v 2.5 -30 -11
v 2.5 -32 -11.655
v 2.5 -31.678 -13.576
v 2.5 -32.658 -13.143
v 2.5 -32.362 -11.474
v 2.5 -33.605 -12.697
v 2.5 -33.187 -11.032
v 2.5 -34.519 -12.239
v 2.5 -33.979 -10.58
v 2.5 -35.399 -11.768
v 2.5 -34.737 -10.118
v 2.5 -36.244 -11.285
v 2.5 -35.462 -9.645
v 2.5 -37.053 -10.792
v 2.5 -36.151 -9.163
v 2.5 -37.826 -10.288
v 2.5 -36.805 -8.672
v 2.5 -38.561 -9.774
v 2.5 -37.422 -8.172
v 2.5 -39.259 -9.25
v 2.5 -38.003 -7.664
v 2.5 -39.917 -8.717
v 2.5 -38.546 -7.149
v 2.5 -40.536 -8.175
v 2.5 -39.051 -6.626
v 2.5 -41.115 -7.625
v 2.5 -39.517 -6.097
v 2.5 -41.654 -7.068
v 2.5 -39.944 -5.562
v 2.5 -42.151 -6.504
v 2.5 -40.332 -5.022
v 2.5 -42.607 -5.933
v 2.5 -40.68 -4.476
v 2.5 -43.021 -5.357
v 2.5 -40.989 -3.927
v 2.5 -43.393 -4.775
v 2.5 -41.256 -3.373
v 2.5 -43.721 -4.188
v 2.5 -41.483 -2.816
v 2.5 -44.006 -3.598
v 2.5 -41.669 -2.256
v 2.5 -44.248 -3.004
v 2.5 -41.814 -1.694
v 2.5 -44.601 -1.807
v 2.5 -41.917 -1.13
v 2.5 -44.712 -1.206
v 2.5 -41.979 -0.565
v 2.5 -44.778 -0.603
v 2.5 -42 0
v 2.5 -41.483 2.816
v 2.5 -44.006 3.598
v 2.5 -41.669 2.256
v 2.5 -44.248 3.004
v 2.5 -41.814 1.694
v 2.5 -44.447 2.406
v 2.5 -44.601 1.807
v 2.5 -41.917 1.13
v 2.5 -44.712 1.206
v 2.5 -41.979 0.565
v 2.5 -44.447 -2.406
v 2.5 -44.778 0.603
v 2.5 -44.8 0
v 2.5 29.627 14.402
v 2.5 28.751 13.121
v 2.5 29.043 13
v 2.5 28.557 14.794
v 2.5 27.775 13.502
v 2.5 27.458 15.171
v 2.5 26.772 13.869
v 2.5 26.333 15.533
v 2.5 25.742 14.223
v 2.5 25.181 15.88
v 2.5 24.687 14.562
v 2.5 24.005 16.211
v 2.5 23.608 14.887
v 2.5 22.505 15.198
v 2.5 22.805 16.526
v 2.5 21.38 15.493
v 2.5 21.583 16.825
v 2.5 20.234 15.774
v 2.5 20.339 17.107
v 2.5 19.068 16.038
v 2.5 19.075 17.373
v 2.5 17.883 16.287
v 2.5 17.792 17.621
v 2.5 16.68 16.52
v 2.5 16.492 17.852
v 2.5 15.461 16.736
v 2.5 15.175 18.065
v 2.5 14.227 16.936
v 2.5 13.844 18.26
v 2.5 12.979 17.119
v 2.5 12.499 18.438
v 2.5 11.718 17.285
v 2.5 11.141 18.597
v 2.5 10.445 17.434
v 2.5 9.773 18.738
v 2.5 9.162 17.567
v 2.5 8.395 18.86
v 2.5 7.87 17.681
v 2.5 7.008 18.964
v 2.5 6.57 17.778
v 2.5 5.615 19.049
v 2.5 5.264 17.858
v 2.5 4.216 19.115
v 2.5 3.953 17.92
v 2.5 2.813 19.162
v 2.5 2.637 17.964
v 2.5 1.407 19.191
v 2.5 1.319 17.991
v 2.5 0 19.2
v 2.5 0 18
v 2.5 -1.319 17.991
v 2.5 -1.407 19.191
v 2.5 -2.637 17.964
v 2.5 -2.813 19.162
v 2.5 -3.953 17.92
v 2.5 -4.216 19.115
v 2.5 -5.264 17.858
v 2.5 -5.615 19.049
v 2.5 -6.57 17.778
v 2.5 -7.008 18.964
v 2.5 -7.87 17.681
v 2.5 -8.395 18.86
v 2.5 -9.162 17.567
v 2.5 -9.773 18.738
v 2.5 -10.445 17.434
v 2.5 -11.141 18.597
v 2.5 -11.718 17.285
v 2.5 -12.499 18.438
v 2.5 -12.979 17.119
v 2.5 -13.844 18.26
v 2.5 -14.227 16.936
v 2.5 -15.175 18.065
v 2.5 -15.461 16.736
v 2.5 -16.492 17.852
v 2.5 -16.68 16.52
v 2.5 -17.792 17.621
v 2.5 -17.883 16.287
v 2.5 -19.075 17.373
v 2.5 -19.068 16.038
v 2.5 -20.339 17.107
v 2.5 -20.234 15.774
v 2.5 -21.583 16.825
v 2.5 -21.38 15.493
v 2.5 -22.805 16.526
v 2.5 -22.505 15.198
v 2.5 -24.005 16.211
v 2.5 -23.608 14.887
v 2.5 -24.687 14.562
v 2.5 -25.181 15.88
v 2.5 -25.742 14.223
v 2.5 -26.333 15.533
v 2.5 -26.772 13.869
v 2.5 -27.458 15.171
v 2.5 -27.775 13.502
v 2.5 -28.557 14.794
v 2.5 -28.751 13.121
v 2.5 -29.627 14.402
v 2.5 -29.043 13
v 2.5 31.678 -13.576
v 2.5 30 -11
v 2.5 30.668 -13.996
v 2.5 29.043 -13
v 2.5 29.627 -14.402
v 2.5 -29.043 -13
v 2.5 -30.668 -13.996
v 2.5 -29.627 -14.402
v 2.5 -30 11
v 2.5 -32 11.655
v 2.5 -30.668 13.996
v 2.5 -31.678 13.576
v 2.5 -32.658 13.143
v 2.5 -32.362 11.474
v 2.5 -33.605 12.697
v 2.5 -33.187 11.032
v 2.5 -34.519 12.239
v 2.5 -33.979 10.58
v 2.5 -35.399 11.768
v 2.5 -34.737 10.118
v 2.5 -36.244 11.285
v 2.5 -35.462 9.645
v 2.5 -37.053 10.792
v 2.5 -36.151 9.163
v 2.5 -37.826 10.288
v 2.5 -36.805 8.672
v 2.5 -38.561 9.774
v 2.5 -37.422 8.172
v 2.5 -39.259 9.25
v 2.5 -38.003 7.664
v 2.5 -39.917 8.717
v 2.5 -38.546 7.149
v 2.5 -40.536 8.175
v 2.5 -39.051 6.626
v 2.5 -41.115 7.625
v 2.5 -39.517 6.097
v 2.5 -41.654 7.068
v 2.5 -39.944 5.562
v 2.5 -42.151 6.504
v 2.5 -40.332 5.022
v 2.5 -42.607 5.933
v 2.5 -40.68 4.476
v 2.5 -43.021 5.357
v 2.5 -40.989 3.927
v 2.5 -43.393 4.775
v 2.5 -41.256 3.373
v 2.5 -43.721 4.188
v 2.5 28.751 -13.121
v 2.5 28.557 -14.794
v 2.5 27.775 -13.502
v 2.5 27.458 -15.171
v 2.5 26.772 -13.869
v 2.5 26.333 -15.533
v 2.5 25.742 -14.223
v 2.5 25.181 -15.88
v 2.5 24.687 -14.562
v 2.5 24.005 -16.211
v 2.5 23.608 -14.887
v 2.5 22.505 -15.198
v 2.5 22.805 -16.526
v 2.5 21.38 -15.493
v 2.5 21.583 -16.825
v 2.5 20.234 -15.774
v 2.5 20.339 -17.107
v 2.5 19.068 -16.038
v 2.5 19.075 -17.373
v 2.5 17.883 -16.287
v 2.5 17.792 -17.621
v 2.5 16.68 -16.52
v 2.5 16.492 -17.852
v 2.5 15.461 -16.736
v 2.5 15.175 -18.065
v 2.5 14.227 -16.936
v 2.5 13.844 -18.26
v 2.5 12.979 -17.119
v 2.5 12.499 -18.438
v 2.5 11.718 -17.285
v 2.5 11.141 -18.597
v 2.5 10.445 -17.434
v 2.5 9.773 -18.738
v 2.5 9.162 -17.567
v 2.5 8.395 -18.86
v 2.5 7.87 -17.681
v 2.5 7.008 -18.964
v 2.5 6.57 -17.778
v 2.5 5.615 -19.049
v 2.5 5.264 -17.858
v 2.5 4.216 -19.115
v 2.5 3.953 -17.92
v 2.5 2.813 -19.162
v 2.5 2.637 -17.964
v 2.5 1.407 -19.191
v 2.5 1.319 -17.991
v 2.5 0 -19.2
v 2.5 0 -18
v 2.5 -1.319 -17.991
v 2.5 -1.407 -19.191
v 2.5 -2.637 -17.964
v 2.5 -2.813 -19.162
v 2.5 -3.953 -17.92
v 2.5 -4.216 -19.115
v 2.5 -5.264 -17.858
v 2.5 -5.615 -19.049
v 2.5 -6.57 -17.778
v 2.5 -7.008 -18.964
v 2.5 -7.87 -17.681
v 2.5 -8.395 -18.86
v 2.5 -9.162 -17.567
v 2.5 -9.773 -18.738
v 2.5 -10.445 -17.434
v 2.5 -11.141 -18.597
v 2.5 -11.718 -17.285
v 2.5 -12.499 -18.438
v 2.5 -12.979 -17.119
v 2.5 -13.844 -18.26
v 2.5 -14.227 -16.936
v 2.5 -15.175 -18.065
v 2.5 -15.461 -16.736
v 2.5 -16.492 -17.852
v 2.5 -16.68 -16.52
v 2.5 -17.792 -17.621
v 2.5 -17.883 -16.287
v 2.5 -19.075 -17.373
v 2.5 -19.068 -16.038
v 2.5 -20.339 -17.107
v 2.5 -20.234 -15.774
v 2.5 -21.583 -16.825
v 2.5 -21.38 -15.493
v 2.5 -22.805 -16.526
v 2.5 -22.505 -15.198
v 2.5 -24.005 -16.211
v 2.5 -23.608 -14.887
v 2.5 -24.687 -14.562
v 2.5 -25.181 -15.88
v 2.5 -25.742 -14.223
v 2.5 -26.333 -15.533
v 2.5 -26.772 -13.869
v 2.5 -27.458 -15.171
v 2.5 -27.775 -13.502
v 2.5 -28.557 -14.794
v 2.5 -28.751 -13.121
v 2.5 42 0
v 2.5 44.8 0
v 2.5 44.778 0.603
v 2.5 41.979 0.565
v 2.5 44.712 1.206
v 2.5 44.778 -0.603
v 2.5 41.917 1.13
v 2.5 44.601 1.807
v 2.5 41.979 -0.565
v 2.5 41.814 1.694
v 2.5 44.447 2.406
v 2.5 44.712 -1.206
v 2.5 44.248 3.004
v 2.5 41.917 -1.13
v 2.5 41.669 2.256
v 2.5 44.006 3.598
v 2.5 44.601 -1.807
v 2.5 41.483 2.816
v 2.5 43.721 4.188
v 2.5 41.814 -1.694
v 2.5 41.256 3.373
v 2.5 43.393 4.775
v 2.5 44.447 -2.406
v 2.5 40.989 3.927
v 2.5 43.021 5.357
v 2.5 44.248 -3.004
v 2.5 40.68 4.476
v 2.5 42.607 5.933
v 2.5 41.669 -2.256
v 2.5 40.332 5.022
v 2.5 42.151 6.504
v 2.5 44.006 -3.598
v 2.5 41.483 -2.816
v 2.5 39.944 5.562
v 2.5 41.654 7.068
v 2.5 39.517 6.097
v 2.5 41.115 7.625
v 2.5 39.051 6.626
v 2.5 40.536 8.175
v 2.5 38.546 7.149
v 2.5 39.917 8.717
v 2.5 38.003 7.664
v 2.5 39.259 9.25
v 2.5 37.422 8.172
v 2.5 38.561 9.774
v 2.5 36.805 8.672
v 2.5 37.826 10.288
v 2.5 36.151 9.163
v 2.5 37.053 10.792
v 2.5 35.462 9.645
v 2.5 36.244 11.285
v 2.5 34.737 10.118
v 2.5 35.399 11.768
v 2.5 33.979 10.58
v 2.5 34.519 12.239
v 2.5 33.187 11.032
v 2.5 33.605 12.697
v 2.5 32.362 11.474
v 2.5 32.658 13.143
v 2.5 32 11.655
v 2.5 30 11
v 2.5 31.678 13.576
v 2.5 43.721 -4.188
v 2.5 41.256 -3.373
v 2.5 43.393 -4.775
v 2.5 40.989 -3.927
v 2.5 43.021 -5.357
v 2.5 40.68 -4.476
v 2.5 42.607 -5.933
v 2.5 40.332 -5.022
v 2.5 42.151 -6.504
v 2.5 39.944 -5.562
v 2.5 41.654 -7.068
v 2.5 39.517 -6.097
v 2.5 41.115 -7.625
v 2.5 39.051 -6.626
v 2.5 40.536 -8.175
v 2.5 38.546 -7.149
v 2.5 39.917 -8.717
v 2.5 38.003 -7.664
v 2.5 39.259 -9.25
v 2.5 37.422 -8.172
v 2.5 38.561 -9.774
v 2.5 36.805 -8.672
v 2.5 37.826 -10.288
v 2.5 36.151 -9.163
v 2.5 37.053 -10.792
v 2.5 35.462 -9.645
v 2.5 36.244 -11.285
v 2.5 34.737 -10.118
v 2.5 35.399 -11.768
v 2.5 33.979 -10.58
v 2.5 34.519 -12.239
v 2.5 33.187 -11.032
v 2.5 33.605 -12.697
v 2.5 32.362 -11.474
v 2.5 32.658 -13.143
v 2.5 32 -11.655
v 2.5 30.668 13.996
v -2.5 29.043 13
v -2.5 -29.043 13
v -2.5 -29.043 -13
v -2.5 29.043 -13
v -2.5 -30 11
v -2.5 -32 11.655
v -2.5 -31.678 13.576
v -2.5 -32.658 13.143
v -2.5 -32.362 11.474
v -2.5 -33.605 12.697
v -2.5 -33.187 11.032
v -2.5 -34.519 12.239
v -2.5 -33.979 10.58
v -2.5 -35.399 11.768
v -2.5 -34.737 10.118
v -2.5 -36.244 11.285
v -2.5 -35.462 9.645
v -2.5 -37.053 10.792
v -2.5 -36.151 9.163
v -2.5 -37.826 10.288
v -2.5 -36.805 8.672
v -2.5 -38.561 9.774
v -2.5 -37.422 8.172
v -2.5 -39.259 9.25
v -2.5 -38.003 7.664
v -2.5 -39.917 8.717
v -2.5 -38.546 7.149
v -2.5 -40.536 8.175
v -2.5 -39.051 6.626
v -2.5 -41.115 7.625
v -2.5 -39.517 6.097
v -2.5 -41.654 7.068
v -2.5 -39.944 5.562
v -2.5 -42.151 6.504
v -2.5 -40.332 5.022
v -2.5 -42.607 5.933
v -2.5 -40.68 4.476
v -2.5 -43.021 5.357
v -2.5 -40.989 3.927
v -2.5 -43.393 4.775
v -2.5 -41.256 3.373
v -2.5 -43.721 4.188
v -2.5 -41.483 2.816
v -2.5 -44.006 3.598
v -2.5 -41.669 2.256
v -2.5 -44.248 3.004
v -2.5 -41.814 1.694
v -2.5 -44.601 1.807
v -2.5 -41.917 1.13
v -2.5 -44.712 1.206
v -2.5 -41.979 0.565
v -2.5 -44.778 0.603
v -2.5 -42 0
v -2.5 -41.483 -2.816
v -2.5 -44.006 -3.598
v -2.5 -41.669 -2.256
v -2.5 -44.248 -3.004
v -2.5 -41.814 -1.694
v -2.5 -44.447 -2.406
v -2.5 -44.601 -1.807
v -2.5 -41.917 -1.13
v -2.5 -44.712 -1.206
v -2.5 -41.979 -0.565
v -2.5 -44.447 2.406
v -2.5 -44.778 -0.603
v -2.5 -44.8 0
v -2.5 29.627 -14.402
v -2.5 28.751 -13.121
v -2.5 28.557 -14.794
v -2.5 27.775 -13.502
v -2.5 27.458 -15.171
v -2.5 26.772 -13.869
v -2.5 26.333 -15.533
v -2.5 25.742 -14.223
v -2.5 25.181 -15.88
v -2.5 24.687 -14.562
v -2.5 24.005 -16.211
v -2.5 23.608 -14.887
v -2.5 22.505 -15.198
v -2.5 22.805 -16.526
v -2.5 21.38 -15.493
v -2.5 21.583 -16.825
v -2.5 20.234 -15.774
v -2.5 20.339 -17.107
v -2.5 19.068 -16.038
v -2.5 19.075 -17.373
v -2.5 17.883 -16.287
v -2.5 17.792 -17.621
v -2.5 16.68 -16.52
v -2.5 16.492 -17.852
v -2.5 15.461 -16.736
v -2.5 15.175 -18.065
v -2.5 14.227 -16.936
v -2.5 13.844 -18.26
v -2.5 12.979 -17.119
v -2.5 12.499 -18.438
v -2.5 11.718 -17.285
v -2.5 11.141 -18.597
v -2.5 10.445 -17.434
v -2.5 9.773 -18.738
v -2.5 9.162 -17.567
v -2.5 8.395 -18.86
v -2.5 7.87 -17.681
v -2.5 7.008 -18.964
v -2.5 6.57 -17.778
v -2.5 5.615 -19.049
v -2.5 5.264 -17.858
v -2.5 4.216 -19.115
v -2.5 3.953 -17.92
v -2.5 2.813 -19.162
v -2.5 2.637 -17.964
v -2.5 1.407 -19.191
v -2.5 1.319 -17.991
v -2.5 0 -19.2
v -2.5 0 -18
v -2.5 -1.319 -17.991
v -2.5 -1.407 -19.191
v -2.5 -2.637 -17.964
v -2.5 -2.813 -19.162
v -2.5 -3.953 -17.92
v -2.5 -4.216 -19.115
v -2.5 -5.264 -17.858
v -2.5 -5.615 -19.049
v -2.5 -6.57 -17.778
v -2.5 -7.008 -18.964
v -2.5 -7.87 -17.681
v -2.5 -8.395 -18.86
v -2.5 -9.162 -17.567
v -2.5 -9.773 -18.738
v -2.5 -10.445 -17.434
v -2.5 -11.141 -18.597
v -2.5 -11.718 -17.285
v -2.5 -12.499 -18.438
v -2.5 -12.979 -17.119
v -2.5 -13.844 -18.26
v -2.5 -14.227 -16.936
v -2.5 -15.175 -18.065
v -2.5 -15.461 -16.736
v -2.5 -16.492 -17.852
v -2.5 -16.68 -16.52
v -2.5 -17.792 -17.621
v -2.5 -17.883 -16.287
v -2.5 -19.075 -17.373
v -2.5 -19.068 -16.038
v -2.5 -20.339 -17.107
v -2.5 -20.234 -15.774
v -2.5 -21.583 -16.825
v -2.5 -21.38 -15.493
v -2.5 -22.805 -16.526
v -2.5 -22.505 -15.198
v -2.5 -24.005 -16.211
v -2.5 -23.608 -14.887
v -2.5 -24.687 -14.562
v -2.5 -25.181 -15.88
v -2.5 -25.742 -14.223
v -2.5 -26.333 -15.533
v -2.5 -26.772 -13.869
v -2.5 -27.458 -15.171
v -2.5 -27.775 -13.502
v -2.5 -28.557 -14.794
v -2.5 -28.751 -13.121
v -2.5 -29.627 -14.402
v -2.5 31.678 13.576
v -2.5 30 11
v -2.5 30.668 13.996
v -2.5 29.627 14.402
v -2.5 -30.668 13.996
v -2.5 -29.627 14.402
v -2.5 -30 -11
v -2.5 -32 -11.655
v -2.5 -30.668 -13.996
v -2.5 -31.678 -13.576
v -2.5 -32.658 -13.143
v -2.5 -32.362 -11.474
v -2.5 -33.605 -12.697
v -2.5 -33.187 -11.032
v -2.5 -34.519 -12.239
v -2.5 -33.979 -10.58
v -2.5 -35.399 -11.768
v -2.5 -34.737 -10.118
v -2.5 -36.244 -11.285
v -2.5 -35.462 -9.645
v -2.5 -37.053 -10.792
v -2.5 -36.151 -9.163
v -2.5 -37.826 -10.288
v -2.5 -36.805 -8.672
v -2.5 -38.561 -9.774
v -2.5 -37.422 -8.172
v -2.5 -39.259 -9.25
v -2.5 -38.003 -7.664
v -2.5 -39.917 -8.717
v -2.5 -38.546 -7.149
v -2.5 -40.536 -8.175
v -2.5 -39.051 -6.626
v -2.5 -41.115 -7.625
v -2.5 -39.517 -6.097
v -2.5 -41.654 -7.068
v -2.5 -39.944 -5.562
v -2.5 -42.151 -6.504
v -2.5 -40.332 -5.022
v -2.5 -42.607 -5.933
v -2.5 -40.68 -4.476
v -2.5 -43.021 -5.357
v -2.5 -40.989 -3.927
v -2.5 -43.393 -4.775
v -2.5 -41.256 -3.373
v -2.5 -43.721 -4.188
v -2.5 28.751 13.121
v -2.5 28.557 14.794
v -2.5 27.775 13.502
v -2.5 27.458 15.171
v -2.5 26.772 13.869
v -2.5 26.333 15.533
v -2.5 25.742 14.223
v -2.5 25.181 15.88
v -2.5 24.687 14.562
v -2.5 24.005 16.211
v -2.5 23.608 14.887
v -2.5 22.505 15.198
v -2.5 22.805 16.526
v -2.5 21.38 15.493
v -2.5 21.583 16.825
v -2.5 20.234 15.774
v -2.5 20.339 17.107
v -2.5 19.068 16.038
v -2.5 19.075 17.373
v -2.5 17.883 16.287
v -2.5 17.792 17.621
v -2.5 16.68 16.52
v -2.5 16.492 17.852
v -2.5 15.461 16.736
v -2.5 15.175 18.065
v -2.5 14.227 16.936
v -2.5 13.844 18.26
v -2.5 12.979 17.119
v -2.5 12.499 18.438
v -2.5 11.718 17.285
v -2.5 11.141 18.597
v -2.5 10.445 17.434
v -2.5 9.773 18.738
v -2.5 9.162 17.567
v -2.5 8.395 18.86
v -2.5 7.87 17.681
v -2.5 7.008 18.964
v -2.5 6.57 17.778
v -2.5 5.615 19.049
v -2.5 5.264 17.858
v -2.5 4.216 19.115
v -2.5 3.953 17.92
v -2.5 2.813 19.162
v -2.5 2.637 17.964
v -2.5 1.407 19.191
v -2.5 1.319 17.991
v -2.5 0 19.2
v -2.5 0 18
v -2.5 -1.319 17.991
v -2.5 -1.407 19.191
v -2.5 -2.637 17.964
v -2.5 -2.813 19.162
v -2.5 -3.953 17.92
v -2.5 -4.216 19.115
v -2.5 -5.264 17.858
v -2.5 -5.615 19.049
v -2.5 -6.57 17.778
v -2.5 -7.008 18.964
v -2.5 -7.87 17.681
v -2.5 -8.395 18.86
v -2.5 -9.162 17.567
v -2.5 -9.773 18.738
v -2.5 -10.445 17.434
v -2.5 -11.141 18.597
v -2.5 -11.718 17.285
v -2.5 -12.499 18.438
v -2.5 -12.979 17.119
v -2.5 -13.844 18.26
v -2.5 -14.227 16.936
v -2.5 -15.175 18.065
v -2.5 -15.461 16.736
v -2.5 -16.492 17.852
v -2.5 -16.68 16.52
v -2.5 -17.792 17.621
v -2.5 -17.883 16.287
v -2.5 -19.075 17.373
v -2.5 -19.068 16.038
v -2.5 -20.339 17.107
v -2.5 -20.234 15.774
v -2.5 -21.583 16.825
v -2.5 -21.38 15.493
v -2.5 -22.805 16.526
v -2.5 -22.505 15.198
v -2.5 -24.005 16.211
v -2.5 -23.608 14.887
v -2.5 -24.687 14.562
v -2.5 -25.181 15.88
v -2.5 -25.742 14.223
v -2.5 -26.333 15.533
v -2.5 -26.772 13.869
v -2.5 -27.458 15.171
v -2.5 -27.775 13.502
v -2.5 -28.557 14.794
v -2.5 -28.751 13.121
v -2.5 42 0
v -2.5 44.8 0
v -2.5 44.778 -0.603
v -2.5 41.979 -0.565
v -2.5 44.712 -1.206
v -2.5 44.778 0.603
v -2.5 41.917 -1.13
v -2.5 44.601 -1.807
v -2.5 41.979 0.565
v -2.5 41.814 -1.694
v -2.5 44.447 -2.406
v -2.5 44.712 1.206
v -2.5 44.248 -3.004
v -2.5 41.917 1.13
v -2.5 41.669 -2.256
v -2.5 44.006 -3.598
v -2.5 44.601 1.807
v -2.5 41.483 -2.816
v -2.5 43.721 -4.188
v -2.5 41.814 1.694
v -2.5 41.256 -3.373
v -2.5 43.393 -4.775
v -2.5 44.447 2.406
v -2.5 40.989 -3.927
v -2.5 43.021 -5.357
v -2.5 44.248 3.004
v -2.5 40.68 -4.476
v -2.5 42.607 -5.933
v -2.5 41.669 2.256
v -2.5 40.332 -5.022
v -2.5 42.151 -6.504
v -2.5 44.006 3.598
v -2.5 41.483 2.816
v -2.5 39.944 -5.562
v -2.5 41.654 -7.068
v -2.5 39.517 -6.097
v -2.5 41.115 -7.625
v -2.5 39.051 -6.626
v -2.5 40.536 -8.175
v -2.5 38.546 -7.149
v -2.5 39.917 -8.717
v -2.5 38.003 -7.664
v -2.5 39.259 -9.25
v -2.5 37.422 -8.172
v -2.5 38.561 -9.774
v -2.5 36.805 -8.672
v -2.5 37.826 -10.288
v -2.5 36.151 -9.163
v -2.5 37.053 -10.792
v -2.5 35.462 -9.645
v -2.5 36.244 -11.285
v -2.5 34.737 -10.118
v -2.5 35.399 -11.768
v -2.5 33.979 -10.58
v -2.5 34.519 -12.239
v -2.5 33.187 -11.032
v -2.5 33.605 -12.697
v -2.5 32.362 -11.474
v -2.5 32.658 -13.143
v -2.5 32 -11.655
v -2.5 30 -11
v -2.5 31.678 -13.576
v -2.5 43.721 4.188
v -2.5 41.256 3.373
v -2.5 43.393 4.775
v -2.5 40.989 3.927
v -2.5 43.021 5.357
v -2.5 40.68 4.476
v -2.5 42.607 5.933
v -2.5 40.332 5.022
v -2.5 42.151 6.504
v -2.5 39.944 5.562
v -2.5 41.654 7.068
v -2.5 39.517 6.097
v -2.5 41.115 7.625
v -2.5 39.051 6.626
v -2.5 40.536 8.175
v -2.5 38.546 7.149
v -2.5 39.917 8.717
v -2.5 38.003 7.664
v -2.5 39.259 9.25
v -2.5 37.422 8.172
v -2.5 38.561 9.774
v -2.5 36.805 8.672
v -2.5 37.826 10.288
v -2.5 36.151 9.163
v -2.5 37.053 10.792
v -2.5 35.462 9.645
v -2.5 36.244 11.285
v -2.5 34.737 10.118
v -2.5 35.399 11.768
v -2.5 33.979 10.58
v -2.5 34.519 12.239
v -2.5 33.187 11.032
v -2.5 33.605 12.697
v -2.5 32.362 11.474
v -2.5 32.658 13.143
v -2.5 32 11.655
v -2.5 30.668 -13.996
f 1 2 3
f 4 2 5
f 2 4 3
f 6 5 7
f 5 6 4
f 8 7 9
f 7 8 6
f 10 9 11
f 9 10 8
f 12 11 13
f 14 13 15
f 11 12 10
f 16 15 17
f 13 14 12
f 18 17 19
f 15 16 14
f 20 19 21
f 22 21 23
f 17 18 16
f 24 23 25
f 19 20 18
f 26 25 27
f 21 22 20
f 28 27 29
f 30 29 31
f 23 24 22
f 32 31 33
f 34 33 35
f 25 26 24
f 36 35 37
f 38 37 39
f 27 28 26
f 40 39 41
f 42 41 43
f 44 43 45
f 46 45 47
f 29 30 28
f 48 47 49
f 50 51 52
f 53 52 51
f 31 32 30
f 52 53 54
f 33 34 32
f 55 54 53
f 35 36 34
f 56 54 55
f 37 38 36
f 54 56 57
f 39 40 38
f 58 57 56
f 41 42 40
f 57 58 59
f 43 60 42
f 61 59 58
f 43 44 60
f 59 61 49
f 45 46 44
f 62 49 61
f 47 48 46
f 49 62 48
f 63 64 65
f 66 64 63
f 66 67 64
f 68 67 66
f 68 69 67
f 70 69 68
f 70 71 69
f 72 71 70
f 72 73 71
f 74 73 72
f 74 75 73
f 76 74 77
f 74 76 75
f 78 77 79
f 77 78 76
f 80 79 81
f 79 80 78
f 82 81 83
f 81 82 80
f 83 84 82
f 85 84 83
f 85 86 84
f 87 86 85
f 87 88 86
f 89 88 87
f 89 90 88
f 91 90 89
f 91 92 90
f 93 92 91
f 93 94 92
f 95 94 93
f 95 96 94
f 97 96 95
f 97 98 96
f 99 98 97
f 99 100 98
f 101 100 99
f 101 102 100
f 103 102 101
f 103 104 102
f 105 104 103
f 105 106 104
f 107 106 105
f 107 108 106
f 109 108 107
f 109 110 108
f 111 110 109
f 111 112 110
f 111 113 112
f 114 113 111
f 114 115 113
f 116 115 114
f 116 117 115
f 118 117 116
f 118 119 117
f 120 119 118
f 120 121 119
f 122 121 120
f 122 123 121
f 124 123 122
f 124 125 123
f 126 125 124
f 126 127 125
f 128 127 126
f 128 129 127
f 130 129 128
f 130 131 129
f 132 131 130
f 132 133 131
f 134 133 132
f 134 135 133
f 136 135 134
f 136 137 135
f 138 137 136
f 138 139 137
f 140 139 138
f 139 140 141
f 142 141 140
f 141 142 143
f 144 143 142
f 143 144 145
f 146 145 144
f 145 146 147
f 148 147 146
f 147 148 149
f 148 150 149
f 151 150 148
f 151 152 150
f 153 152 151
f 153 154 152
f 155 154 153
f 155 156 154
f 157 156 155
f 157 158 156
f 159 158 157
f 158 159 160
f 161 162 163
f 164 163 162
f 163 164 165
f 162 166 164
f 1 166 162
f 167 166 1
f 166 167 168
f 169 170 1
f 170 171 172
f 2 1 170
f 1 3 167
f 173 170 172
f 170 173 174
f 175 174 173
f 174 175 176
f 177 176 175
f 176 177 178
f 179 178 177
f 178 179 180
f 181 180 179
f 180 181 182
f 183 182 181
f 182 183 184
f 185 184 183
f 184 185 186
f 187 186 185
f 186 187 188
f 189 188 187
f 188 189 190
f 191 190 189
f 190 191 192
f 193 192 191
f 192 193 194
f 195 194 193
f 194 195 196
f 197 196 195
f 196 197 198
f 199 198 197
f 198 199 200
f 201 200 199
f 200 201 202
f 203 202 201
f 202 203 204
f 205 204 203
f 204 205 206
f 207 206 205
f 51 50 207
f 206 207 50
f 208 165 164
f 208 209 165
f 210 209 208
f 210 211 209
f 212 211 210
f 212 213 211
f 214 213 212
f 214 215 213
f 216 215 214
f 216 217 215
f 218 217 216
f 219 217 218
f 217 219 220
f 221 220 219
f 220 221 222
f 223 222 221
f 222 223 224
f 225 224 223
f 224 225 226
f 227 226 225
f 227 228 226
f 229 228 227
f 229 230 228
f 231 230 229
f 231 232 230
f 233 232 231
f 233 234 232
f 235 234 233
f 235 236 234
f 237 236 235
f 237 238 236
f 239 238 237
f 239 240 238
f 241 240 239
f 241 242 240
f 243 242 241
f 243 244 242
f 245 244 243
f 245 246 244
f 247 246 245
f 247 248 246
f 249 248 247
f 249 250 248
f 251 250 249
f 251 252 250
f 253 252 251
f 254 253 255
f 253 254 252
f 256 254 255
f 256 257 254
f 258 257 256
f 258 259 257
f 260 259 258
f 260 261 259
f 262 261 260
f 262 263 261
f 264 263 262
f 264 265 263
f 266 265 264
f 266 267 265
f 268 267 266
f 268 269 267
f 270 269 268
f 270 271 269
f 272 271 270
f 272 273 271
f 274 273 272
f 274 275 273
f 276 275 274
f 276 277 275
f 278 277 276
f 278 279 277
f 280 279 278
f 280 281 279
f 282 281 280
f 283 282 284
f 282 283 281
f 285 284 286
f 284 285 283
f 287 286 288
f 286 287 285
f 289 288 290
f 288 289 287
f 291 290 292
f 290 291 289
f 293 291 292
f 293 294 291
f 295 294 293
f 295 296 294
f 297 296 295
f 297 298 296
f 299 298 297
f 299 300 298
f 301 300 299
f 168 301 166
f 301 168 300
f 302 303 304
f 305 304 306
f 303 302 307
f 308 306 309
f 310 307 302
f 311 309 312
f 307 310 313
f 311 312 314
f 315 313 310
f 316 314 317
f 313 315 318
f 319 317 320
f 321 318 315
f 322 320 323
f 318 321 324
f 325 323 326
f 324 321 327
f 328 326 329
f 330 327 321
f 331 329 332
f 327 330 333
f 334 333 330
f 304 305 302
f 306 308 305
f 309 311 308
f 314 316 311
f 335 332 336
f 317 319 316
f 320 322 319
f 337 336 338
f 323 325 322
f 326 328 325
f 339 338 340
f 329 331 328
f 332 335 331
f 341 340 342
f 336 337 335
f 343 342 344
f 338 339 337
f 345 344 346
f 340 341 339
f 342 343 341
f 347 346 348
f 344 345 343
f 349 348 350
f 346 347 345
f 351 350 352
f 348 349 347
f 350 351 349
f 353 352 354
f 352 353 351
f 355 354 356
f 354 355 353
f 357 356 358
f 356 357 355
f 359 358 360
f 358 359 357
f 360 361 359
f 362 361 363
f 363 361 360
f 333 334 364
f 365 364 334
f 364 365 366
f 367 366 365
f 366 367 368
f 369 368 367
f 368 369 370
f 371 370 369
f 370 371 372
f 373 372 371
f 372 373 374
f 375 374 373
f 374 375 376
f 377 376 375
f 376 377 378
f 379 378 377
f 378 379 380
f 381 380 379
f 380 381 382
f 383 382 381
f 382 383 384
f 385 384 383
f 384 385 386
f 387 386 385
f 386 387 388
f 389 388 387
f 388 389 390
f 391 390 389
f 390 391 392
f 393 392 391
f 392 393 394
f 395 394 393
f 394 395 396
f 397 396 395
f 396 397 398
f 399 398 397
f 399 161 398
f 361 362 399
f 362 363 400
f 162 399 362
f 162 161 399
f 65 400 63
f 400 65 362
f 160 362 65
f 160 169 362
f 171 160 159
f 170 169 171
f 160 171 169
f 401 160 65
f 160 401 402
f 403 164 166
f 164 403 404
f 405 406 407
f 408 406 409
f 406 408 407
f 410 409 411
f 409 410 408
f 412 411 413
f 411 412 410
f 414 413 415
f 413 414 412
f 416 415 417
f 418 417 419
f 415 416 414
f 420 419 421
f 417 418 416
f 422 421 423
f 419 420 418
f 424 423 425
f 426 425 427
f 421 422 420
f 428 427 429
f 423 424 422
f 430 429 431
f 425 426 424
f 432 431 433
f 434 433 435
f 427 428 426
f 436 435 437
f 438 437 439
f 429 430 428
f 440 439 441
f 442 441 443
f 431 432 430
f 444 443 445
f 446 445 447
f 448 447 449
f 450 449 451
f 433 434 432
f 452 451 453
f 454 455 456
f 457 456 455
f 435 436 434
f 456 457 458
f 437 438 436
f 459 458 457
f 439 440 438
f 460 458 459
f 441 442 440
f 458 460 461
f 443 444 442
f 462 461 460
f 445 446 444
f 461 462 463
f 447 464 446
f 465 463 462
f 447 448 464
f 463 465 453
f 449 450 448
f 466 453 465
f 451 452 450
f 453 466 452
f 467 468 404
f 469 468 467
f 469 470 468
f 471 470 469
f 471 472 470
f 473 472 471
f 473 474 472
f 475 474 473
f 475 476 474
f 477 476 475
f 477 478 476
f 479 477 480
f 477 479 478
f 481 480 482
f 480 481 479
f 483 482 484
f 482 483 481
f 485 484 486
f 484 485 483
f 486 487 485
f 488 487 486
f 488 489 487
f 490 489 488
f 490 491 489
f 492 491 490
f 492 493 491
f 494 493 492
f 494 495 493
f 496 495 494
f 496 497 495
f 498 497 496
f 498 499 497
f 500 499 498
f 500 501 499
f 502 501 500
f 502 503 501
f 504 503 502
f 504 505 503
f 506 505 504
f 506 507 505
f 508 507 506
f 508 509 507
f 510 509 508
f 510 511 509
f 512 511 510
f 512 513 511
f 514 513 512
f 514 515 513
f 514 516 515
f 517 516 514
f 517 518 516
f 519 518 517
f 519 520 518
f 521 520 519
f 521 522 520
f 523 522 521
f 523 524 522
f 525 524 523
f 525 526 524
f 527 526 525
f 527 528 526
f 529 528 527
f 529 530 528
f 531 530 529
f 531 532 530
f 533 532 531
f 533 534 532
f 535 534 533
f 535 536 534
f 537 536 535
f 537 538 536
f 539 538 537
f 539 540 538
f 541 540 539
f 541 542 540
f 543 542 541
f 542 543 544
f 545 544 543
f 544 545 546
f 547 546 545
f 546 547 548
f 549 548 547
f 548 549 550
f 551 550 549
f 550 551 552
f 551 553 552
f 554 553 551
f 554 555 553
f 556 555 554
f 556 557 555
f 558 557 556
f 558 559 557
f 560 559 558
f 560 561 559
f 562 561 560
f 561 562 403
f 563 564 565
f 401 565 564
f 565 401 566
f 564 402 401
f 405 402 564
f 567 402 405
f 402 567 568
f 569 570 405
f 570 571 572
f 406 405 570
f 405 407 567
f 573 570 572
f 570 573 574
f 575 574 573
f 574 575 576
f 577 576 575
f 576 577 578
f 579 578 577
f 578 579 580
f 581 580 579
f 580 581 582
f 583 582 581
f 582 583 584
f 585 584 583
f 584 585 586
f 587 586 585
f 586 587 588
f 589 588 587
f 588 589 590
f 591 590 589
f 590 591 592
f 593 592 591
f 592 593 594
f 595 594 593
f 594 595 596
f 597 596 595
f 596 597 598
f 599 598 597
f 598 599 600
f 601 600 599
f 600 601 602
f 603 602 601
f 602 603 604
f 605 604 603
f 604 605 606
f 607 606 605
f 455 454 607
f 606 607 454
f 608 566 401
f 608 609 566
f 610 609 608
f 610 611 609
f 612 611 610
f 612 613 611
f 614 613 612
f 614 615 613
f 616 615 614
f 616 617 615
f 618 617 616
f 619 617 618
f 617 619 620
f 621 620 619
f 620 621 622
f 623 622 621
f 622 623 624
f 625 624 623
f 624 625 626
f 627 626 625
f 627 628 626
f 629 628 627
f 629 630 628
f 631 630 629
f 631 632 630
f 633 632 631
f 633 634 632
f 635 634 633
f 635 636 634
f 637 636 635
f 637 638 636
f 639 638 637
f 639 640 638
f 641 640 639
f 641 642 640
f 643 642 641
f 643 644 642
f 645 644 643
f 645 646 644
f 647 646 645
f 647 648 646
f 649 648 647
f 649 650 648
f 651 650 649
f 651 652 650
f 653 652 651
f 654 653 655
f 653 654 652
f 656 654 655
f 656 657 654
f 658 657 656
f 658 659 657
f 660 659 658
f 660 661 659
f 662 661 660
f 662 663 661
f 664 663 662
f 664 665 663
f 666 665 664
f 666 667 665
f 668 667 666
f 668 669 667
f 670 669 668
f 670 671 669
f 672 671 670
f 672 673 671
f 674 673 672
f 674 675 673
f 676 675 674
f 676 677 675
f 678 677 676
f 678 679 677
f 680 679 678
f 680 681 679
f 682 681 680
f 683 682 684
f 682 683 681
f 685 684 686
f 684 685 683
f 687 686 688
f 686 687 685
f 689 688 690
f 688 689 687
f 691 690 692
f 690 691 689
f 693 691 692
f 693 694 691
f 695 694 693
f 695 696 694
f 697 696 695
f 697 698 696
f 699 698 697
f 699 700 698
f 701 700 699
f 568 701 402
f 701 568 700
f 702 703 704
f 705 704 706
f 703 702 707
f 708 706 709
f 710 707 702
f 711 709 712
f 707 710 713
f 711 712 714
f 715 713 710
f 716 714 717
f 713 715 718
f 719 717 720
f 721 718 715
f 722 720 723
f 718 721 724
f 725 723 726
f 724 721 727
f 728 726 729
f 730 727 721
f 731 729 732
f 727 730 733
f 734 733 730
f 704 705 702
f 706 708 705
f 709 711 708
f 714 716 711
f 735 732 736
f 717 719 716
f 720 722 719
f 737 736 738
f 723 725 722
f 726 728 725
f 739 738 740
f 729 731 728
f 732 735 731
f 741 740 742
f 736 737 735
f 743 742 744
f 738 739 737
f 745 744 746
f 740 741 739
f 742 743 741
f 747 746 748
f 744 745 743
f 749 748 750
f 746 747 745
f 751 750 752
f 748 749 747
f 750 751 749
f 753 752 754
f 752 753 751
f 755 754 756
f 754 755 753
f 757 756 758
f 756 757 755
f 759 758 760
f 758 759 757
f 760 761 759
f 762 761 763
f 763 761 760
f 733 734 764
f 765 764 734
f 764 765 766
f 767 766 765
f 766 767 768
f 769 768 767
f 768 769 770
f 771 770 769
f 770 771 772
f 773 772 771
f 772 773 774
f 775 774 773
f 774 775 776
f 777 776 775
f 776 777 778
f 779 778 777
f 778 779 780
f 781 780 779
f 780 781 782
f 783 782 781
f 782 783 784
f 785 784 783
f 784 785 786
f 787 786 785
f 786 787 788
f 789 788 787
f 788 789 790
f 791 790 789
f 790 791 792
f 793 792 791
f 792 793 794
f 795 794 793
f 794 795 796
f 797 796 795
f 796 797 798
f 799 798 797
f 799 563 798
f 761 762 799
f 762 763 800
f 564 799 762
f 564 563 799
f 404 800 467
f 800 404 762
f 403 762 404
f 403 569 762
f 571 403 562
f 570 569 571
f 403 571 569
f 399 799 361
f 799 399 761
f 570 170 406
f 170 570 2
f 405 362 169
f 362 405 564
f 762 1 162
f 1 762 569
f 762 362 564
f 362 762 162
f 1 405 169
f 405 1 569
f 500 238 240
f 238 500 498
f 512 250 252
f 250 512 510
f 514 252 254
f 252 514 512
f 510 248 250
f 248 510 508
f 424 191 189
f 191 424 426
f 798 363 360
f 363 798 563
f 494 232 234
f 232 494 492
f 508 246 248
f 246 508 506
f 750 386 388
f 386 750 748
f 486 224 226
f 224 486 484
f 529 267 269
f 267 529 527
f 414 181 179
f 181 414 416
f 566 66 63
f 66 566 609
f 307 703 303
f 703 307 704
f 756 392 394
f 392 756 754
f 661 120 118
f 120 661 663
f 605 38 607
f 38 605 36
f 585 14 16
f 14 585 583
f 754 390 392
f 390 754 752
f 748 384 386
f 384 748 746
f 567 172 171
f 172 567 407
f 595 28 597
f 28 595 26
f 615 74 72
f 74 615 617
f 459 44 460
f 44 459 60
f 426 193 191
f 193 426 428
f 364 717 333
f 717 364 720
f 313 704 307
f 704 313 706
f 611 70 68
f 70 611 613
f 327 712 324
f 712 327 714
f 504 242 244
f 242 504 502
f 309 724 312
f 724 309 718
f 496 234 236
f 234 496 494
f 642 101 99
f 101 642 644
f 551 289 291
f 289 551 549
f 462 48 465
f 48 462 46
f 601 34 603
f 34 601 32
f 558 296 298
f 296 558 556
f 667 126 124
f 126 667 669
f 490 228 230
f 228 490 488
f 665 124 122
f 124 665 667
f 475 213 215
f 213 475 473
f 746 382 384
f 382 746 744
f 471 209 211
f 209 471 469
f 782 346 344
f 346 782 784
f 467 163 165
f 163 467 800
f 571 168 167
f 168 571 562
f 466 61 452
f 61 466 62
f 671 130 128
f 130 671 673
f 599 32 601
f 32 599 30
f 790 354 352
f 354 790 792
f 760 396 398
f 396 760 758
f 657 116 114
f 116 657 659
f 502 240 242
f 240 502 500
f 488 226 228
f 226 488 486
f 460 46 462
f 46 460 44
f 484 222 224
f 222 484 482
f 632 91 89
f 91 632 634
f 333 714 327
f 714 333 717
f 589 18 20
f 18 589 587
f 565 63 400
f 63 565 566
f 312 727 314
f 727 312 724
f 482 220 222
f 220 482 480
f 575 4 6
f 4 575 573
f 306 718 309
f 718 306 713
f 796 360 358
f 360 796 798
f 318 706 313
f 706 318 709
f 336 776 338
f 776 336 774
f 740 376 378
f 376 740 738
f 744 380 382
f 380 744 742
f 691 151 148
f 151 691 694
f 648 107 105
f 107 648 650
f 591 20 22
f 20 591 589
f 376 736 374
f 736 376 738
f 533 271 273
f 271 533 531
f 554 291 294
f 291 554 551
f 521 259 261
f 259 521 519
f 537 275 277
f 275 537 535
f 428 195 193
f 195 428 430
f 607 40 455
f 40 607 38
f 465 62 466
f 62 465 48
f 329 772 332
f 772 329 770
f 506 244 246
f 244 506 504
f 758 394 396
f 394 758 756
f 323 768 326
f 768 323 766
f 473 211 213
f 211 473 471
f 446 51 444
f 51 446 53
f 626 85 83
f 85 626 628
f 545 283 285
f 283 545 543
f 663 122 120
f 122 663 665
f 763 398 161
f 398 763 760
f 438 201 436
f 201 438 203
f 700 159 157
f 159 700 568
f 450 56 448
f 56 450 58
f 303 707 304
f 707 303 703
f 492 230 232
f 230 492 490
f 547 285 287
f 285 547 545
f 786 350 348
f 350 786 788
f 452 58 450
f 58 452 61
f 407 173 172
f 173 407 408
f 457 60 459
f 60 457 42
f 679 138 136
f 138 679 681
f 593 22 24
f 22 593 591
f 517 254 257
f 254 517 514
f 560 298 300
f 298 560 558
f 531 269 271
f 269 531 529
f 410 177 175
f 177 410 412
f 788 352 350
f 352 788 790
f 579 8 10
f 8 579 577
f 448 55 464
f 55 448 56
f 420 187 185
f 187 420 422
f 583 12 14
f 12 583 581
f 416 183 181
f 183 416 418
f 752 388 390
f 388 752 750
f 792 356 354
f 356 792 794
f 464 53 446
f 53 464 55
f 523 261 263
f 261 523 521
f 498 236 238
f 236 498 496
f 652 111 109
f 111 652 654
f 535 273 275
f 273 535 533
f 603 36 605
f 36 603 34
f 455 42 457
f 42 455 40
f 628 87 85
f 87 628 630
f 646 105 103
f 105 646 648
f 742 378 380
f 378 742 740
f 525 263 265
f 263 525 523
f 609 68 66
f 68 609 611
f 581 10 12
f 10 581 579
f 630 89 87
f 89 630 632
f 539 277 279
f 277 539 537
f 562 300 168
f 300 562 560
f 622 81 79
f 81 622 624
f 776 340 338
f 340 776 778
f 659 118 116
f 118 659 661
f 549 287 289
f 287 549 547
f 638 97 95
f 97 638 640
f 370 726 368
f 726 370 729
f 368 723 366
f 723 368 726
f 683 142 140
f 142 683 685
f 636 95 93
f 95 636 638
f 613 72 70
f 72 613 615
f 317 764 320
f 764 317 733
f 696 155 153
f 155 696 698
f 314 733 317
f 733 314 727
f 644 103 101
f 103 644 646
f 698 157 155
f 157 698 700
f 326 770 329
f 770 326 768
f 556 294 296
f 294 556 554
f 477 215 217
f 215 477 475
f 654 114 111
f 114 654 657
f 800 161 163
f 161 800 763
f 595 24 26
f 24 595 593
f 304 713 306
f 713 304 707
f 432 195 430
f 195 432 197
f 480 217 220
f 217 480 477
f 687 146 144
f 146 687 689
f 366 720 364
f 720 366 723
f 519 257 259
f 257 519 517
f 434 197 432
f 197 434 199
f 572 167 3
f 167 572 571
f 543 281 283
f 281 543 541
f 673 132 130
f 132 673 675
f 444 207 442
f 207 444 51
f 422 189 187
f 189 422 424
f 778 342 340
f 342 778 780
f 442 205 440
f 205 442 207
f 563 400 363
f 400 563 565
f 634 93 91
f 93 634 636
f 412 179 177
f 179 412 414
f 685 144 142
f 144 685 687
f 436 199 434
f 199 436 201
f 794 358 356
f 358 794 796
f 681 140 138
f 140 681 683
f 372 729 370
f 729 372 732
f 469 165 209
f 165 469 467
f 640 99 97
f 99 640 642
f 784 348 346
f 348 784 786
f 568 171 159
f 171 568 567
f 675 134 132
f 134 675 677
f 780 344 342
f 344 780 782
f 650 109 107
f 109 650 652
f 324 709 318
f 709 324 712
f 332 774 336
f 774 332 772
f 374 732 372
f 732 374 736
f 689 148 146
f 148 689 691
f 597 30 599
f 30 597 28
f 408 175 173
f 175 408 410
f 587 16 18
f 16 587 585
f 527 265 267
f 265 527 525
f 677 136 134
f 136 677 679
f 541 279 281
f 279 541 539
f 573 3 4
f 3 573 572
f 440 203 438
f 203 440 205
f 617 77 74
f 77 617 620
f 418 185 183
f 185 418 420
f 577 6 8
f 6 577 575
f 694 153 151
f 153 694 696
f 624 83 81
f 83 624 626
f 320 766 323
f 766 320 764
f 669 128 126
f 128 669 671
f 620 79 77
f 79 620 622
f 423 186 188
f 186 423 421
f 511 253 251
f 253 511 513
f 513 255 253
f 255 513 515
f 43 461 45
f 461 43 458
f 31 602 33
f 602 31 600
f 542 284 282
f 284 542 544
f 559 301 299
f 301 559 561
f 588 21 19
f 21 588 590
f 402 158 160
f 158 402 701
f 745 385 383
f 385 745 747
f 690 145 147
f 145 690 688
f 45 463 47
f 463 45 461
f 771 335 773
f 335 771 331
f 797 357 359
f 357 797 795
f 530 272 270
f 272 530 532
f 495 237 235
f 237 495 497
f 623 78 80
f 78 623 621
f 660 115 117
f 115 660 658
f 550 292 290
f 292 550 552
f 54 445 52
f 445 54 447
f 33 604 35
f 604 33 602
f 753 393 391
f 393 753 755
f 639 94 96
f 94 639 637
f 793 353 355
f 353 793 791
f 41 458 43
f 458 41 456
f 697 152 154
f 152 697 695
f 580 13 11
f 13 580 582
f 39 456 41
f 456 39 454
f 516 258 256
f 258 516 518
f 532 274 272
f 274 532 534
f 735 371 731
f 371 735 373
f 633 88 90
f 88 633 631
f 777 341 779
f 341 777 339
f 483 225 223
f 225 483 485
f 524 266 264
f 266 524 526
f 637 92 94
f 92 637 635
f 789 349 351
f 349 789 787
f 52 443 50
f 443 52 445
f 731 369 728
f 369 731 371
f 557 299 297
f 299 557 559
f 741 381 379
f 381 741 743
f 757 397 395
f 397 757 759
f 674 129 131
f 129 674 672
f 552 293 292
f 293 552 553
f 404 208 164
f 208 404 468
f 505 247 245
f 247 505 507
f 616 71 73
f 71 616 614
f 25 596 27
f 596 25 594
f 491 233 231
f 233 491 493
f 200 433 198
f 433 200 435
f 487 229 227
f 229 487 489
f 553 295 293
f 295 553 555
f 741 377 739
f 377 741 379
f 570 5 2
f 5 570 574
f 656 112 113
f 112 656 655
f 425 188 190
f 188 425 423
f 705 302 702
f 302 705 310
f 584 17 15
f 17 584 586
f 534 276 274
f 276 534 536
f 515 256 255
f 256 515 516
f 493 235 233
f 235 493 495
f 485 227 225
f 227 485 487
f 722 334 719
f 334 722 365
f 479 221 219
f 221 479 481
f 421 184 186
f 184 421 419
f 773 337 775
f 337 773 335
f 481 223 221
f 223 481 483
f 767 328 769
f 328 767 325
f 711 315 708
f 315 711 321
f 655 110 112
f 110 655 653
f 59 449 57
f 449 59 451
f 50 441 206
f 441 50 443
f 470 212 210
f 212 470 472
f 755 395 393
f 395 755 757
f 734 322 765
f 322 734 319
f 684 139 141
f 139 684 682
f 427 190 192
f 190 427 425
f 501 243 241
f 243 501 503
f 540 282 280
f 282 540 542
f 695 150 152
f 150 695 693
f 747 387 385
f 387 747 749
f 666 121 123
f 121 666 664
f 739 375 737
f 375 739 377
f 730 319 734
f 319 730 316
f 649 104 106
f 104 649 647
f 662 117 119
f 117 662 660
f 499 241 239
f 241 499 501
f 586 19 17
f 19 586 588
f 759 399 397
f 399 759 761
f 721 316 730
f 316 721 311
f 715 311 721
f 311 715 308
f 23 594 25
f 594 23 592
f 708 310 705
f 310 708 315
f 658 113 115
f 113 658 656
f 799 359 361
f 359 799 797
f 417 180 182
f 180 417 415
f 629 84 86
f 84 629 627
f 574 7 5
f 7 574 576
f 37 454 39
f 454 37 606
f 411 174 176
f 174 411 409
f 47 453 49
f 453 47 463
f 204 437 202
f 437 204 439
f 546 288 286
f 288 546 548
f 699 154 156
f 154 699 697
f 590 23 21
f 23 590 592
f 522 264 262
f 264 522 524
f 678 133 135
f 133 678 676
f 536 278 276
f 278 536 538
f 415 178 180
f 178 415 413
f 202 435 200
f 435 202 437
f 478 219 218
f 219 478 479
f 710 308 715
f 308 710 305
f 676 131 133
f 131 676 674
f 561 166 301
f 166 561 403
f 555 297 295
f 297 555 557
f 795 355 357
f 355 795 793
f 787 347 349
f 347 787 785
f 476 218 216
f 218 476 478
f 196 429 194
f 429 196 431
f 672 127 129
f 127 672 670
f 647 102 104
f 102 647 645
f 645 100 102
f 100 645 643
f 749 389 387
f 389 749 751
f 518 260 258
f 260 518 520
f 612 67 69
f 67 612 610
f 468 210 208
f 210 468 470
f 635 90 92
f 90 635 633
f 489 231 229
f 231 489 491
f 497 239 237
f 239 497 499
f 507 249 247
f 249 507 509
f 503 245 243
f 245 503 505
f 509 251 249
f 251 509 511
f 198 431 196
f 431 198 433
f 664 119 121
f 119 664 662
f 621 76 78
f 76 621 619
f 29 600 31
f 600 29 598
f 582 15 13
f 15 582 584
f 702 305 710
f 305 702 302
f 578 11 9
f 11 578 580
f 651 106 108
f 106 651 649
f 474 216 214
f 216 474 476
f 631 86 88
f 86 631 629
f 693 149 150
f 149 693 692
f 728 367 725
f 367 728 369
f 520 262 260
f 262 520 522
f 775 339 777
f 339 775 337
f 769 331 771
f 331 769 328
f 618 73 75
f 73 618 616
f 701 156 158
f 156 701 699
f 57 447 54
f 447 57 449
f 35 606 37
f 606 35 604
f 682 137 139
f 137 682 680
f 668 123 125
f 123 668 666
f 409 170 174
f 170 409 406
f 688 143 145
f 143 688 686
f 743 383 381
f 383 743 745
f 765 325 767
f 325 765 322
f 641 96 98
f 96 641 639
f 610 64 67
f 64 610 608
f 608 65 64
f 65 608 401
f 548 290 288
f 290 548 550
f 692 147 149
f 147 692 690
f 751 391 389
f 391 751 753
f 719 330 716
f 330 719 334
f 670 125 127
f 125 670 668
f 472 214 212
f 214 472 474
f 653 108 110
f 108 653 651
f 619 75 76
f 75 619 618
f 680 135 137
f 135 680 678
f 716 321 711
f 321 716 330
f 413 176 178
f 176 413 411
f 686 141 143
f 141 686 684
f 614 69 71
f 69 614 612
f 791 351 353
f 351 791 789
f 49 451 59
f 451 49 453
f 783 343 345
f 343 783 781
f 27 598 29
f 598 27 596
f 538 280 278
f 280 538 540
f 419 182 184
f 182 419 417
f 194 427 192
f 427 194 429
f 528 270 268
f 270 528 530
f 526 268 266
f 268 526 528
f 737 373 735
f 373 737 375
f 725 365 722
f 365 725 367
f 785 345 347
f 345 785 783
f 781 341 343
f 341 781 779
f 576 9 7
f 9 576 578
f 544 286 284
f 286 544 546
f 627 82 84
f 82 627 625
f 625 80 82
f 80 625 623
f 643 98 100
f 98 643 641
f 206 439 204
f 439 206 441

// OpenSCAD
$fn=200;

difference(){
    cube([5,60+4,22+4],true);
    cube([11,60,22],true);   
}

scale([1,1.4,0.6])rotate([0,90,0])difference(){
    cylinder(5,d=60+4, center=true);
    cylinder(11,d=60, center=true);
}    
